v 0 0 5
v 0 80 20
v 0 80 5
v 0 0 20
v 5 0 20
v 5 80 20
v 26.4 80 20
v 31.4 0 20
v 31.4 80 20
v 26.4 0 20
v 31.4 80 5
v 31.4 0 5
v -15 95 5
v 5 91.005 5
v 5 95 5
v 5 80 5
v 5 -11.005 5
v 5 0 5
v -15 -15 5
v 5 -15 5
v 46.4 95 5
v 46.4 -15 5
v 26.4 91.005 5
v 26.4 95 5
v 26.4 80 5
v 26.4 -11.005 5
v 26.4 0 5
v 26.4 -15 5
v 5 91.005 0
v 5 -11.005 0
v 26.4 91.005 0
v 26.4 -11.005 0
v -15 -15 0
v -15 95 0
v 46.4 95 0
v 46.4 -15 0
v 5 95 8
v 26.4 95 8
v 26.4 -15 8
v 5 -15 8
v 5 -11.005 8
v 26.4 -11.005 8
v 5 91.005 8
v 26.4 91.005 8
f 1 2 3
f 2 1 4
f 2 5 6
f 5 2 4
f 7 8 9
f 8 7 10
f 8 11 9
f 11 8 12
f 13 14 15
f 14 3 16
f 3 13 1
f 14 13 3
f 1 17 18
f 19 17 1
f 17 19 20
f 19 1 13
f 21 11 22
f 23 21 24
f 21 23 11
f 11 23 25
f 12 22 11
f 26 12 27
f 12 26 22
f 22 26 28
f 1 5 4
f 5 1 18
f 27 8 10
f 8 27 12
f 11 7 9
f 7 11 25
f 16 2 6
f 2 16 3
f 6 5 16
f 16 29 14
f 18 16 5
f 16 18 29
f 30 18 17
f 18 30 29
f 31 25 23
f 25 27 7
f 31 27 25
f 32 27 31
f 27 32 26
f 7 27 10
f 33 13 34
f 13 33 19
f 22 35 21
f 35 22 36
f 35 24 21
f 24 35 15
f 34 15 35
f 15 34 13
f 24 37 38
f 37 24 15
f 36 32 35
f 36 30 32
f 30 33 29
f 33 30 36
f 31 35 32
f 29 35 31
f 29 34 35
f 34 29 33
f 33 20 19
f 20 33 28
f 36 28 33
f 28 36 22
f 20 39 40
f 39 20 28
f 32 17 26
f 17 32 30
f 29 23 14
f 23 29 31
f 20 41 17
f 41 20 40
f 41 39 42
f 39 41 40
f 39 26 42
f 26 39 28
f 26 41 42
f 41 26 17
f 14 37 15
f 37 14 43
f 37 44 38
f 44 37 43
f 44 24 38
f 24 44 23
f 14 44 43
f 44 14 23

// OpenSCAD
smidge = 1.2;

pcbX = 20.2 + smidge;
pcbY = 107.01;
pcbZ = 1.6;

depth = 25;

difference(){

    translate([0,0,5])
        cube([pcbX + 10, 80, 15]);
    translate([5, 0, 5])
        cube([pcbX,pcbY,25 * pcbZ]);
}

snip = pcbY - 5;
nerdel = (110 - snip) / 2;

difference(){
    translate([-15,-15,0])
        cube([pcbX + 40,110,5]);
    translate([5, nerdel - 15, 0])
        cube([pcbX,snip,100]);
}
translate([5,-15,5])
    cube([pcbX,nerdel, 3]);
translate([5,95-nerdel,5])
    cube([pcbX,nerdel, 3]);
